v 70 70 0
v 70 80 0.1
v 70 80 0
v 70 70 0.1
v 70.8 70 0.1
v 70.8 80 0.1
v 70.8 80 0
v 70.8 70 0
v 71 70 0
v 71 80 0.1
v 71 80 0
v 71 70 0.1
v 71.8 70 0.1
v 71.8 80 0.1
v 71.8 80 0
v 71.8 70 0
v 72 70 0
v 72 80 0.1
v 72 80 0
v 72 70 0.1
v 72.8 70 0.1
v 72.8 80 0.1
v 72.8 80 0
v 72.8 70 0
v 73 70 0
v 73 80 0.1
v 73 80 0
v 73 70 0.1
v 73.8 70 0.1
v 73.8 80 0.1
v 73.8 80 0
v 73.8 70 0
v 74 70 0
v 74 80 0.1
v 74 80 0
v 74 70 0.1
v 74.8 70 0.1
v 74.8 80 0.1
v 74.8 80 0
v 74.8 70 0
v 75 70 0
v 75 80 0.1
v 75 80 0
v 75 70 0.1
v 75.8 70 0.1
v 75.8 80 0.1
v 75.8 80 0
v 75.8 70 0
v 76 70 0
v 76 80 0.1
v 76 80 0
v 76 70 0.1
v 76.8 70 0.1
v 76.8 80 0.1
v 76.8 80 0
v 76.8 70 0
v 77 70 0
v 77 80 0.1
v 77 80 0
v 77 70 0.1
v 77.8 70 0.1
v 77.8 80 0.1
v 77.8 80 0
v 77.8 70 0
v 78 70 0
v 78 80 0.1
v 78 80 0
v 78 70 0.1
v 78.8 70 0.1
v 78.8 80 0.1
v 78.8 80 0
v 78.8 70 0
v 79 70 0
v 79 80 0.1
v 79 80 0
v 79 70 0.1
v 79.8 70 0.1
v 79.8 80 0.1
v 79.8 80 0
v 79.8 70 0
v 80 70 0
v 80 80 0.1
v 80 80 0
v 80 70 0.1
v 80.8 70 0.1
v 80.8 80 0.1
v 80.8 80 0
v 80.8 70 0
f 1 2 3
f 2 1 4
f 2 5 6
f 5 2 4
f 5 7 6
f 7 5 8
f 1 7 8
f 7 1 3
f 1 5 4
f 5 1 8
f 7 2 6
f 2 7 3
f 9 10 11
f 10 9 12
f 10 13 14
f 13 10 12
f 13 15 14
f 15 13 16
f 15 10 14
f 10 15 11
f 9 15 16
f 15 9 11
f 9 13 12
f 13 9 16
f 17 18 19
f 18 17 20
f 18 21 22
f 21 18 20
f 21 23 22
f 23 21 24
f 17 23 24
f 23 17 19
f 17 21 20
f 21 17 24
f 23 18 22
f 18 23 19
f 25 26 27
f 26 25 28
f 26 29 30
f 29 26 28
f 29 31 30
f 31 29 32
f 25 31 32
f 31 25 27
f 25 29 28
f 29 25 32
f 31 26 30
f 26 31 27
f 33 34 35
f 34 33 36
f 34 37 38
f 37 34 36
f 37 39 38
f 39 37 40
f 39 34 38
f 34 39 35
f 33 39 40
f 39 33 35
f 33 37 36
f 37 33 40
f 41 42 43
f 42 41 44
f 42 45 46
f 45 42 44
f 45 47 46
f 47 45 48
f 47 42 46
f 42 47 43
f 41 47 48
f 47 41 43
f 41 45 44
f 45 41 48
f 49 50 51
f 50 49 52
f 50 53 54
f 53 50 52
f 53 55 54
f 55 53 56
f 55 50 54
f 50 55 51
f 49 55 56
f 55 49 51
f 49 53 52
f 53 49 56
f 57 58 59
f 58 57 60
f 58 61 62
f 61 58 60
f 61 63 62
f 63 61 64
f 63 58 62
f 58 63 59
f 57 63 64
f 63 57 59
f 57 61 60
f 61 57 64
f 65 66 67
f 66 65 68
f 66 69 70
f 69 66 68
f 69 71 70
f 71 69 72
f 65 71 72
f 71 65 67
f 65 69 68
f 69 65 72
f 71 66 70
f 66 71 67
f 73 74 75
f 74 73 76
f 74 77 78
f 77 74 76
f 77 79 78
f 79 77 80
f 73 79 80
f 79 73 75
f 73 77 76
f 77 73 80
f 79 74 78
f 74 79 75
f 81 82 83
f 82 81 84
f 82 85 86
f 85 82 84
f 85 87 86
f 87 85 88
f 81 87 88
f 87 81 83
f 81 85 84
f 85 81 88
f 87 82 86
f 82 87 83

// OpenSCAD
translate([10+60,10+60,0])
        for (i = [0 : 10]){
            translate([i,0,0])
                cube(size = [0.8,10,0.1]);
    }
